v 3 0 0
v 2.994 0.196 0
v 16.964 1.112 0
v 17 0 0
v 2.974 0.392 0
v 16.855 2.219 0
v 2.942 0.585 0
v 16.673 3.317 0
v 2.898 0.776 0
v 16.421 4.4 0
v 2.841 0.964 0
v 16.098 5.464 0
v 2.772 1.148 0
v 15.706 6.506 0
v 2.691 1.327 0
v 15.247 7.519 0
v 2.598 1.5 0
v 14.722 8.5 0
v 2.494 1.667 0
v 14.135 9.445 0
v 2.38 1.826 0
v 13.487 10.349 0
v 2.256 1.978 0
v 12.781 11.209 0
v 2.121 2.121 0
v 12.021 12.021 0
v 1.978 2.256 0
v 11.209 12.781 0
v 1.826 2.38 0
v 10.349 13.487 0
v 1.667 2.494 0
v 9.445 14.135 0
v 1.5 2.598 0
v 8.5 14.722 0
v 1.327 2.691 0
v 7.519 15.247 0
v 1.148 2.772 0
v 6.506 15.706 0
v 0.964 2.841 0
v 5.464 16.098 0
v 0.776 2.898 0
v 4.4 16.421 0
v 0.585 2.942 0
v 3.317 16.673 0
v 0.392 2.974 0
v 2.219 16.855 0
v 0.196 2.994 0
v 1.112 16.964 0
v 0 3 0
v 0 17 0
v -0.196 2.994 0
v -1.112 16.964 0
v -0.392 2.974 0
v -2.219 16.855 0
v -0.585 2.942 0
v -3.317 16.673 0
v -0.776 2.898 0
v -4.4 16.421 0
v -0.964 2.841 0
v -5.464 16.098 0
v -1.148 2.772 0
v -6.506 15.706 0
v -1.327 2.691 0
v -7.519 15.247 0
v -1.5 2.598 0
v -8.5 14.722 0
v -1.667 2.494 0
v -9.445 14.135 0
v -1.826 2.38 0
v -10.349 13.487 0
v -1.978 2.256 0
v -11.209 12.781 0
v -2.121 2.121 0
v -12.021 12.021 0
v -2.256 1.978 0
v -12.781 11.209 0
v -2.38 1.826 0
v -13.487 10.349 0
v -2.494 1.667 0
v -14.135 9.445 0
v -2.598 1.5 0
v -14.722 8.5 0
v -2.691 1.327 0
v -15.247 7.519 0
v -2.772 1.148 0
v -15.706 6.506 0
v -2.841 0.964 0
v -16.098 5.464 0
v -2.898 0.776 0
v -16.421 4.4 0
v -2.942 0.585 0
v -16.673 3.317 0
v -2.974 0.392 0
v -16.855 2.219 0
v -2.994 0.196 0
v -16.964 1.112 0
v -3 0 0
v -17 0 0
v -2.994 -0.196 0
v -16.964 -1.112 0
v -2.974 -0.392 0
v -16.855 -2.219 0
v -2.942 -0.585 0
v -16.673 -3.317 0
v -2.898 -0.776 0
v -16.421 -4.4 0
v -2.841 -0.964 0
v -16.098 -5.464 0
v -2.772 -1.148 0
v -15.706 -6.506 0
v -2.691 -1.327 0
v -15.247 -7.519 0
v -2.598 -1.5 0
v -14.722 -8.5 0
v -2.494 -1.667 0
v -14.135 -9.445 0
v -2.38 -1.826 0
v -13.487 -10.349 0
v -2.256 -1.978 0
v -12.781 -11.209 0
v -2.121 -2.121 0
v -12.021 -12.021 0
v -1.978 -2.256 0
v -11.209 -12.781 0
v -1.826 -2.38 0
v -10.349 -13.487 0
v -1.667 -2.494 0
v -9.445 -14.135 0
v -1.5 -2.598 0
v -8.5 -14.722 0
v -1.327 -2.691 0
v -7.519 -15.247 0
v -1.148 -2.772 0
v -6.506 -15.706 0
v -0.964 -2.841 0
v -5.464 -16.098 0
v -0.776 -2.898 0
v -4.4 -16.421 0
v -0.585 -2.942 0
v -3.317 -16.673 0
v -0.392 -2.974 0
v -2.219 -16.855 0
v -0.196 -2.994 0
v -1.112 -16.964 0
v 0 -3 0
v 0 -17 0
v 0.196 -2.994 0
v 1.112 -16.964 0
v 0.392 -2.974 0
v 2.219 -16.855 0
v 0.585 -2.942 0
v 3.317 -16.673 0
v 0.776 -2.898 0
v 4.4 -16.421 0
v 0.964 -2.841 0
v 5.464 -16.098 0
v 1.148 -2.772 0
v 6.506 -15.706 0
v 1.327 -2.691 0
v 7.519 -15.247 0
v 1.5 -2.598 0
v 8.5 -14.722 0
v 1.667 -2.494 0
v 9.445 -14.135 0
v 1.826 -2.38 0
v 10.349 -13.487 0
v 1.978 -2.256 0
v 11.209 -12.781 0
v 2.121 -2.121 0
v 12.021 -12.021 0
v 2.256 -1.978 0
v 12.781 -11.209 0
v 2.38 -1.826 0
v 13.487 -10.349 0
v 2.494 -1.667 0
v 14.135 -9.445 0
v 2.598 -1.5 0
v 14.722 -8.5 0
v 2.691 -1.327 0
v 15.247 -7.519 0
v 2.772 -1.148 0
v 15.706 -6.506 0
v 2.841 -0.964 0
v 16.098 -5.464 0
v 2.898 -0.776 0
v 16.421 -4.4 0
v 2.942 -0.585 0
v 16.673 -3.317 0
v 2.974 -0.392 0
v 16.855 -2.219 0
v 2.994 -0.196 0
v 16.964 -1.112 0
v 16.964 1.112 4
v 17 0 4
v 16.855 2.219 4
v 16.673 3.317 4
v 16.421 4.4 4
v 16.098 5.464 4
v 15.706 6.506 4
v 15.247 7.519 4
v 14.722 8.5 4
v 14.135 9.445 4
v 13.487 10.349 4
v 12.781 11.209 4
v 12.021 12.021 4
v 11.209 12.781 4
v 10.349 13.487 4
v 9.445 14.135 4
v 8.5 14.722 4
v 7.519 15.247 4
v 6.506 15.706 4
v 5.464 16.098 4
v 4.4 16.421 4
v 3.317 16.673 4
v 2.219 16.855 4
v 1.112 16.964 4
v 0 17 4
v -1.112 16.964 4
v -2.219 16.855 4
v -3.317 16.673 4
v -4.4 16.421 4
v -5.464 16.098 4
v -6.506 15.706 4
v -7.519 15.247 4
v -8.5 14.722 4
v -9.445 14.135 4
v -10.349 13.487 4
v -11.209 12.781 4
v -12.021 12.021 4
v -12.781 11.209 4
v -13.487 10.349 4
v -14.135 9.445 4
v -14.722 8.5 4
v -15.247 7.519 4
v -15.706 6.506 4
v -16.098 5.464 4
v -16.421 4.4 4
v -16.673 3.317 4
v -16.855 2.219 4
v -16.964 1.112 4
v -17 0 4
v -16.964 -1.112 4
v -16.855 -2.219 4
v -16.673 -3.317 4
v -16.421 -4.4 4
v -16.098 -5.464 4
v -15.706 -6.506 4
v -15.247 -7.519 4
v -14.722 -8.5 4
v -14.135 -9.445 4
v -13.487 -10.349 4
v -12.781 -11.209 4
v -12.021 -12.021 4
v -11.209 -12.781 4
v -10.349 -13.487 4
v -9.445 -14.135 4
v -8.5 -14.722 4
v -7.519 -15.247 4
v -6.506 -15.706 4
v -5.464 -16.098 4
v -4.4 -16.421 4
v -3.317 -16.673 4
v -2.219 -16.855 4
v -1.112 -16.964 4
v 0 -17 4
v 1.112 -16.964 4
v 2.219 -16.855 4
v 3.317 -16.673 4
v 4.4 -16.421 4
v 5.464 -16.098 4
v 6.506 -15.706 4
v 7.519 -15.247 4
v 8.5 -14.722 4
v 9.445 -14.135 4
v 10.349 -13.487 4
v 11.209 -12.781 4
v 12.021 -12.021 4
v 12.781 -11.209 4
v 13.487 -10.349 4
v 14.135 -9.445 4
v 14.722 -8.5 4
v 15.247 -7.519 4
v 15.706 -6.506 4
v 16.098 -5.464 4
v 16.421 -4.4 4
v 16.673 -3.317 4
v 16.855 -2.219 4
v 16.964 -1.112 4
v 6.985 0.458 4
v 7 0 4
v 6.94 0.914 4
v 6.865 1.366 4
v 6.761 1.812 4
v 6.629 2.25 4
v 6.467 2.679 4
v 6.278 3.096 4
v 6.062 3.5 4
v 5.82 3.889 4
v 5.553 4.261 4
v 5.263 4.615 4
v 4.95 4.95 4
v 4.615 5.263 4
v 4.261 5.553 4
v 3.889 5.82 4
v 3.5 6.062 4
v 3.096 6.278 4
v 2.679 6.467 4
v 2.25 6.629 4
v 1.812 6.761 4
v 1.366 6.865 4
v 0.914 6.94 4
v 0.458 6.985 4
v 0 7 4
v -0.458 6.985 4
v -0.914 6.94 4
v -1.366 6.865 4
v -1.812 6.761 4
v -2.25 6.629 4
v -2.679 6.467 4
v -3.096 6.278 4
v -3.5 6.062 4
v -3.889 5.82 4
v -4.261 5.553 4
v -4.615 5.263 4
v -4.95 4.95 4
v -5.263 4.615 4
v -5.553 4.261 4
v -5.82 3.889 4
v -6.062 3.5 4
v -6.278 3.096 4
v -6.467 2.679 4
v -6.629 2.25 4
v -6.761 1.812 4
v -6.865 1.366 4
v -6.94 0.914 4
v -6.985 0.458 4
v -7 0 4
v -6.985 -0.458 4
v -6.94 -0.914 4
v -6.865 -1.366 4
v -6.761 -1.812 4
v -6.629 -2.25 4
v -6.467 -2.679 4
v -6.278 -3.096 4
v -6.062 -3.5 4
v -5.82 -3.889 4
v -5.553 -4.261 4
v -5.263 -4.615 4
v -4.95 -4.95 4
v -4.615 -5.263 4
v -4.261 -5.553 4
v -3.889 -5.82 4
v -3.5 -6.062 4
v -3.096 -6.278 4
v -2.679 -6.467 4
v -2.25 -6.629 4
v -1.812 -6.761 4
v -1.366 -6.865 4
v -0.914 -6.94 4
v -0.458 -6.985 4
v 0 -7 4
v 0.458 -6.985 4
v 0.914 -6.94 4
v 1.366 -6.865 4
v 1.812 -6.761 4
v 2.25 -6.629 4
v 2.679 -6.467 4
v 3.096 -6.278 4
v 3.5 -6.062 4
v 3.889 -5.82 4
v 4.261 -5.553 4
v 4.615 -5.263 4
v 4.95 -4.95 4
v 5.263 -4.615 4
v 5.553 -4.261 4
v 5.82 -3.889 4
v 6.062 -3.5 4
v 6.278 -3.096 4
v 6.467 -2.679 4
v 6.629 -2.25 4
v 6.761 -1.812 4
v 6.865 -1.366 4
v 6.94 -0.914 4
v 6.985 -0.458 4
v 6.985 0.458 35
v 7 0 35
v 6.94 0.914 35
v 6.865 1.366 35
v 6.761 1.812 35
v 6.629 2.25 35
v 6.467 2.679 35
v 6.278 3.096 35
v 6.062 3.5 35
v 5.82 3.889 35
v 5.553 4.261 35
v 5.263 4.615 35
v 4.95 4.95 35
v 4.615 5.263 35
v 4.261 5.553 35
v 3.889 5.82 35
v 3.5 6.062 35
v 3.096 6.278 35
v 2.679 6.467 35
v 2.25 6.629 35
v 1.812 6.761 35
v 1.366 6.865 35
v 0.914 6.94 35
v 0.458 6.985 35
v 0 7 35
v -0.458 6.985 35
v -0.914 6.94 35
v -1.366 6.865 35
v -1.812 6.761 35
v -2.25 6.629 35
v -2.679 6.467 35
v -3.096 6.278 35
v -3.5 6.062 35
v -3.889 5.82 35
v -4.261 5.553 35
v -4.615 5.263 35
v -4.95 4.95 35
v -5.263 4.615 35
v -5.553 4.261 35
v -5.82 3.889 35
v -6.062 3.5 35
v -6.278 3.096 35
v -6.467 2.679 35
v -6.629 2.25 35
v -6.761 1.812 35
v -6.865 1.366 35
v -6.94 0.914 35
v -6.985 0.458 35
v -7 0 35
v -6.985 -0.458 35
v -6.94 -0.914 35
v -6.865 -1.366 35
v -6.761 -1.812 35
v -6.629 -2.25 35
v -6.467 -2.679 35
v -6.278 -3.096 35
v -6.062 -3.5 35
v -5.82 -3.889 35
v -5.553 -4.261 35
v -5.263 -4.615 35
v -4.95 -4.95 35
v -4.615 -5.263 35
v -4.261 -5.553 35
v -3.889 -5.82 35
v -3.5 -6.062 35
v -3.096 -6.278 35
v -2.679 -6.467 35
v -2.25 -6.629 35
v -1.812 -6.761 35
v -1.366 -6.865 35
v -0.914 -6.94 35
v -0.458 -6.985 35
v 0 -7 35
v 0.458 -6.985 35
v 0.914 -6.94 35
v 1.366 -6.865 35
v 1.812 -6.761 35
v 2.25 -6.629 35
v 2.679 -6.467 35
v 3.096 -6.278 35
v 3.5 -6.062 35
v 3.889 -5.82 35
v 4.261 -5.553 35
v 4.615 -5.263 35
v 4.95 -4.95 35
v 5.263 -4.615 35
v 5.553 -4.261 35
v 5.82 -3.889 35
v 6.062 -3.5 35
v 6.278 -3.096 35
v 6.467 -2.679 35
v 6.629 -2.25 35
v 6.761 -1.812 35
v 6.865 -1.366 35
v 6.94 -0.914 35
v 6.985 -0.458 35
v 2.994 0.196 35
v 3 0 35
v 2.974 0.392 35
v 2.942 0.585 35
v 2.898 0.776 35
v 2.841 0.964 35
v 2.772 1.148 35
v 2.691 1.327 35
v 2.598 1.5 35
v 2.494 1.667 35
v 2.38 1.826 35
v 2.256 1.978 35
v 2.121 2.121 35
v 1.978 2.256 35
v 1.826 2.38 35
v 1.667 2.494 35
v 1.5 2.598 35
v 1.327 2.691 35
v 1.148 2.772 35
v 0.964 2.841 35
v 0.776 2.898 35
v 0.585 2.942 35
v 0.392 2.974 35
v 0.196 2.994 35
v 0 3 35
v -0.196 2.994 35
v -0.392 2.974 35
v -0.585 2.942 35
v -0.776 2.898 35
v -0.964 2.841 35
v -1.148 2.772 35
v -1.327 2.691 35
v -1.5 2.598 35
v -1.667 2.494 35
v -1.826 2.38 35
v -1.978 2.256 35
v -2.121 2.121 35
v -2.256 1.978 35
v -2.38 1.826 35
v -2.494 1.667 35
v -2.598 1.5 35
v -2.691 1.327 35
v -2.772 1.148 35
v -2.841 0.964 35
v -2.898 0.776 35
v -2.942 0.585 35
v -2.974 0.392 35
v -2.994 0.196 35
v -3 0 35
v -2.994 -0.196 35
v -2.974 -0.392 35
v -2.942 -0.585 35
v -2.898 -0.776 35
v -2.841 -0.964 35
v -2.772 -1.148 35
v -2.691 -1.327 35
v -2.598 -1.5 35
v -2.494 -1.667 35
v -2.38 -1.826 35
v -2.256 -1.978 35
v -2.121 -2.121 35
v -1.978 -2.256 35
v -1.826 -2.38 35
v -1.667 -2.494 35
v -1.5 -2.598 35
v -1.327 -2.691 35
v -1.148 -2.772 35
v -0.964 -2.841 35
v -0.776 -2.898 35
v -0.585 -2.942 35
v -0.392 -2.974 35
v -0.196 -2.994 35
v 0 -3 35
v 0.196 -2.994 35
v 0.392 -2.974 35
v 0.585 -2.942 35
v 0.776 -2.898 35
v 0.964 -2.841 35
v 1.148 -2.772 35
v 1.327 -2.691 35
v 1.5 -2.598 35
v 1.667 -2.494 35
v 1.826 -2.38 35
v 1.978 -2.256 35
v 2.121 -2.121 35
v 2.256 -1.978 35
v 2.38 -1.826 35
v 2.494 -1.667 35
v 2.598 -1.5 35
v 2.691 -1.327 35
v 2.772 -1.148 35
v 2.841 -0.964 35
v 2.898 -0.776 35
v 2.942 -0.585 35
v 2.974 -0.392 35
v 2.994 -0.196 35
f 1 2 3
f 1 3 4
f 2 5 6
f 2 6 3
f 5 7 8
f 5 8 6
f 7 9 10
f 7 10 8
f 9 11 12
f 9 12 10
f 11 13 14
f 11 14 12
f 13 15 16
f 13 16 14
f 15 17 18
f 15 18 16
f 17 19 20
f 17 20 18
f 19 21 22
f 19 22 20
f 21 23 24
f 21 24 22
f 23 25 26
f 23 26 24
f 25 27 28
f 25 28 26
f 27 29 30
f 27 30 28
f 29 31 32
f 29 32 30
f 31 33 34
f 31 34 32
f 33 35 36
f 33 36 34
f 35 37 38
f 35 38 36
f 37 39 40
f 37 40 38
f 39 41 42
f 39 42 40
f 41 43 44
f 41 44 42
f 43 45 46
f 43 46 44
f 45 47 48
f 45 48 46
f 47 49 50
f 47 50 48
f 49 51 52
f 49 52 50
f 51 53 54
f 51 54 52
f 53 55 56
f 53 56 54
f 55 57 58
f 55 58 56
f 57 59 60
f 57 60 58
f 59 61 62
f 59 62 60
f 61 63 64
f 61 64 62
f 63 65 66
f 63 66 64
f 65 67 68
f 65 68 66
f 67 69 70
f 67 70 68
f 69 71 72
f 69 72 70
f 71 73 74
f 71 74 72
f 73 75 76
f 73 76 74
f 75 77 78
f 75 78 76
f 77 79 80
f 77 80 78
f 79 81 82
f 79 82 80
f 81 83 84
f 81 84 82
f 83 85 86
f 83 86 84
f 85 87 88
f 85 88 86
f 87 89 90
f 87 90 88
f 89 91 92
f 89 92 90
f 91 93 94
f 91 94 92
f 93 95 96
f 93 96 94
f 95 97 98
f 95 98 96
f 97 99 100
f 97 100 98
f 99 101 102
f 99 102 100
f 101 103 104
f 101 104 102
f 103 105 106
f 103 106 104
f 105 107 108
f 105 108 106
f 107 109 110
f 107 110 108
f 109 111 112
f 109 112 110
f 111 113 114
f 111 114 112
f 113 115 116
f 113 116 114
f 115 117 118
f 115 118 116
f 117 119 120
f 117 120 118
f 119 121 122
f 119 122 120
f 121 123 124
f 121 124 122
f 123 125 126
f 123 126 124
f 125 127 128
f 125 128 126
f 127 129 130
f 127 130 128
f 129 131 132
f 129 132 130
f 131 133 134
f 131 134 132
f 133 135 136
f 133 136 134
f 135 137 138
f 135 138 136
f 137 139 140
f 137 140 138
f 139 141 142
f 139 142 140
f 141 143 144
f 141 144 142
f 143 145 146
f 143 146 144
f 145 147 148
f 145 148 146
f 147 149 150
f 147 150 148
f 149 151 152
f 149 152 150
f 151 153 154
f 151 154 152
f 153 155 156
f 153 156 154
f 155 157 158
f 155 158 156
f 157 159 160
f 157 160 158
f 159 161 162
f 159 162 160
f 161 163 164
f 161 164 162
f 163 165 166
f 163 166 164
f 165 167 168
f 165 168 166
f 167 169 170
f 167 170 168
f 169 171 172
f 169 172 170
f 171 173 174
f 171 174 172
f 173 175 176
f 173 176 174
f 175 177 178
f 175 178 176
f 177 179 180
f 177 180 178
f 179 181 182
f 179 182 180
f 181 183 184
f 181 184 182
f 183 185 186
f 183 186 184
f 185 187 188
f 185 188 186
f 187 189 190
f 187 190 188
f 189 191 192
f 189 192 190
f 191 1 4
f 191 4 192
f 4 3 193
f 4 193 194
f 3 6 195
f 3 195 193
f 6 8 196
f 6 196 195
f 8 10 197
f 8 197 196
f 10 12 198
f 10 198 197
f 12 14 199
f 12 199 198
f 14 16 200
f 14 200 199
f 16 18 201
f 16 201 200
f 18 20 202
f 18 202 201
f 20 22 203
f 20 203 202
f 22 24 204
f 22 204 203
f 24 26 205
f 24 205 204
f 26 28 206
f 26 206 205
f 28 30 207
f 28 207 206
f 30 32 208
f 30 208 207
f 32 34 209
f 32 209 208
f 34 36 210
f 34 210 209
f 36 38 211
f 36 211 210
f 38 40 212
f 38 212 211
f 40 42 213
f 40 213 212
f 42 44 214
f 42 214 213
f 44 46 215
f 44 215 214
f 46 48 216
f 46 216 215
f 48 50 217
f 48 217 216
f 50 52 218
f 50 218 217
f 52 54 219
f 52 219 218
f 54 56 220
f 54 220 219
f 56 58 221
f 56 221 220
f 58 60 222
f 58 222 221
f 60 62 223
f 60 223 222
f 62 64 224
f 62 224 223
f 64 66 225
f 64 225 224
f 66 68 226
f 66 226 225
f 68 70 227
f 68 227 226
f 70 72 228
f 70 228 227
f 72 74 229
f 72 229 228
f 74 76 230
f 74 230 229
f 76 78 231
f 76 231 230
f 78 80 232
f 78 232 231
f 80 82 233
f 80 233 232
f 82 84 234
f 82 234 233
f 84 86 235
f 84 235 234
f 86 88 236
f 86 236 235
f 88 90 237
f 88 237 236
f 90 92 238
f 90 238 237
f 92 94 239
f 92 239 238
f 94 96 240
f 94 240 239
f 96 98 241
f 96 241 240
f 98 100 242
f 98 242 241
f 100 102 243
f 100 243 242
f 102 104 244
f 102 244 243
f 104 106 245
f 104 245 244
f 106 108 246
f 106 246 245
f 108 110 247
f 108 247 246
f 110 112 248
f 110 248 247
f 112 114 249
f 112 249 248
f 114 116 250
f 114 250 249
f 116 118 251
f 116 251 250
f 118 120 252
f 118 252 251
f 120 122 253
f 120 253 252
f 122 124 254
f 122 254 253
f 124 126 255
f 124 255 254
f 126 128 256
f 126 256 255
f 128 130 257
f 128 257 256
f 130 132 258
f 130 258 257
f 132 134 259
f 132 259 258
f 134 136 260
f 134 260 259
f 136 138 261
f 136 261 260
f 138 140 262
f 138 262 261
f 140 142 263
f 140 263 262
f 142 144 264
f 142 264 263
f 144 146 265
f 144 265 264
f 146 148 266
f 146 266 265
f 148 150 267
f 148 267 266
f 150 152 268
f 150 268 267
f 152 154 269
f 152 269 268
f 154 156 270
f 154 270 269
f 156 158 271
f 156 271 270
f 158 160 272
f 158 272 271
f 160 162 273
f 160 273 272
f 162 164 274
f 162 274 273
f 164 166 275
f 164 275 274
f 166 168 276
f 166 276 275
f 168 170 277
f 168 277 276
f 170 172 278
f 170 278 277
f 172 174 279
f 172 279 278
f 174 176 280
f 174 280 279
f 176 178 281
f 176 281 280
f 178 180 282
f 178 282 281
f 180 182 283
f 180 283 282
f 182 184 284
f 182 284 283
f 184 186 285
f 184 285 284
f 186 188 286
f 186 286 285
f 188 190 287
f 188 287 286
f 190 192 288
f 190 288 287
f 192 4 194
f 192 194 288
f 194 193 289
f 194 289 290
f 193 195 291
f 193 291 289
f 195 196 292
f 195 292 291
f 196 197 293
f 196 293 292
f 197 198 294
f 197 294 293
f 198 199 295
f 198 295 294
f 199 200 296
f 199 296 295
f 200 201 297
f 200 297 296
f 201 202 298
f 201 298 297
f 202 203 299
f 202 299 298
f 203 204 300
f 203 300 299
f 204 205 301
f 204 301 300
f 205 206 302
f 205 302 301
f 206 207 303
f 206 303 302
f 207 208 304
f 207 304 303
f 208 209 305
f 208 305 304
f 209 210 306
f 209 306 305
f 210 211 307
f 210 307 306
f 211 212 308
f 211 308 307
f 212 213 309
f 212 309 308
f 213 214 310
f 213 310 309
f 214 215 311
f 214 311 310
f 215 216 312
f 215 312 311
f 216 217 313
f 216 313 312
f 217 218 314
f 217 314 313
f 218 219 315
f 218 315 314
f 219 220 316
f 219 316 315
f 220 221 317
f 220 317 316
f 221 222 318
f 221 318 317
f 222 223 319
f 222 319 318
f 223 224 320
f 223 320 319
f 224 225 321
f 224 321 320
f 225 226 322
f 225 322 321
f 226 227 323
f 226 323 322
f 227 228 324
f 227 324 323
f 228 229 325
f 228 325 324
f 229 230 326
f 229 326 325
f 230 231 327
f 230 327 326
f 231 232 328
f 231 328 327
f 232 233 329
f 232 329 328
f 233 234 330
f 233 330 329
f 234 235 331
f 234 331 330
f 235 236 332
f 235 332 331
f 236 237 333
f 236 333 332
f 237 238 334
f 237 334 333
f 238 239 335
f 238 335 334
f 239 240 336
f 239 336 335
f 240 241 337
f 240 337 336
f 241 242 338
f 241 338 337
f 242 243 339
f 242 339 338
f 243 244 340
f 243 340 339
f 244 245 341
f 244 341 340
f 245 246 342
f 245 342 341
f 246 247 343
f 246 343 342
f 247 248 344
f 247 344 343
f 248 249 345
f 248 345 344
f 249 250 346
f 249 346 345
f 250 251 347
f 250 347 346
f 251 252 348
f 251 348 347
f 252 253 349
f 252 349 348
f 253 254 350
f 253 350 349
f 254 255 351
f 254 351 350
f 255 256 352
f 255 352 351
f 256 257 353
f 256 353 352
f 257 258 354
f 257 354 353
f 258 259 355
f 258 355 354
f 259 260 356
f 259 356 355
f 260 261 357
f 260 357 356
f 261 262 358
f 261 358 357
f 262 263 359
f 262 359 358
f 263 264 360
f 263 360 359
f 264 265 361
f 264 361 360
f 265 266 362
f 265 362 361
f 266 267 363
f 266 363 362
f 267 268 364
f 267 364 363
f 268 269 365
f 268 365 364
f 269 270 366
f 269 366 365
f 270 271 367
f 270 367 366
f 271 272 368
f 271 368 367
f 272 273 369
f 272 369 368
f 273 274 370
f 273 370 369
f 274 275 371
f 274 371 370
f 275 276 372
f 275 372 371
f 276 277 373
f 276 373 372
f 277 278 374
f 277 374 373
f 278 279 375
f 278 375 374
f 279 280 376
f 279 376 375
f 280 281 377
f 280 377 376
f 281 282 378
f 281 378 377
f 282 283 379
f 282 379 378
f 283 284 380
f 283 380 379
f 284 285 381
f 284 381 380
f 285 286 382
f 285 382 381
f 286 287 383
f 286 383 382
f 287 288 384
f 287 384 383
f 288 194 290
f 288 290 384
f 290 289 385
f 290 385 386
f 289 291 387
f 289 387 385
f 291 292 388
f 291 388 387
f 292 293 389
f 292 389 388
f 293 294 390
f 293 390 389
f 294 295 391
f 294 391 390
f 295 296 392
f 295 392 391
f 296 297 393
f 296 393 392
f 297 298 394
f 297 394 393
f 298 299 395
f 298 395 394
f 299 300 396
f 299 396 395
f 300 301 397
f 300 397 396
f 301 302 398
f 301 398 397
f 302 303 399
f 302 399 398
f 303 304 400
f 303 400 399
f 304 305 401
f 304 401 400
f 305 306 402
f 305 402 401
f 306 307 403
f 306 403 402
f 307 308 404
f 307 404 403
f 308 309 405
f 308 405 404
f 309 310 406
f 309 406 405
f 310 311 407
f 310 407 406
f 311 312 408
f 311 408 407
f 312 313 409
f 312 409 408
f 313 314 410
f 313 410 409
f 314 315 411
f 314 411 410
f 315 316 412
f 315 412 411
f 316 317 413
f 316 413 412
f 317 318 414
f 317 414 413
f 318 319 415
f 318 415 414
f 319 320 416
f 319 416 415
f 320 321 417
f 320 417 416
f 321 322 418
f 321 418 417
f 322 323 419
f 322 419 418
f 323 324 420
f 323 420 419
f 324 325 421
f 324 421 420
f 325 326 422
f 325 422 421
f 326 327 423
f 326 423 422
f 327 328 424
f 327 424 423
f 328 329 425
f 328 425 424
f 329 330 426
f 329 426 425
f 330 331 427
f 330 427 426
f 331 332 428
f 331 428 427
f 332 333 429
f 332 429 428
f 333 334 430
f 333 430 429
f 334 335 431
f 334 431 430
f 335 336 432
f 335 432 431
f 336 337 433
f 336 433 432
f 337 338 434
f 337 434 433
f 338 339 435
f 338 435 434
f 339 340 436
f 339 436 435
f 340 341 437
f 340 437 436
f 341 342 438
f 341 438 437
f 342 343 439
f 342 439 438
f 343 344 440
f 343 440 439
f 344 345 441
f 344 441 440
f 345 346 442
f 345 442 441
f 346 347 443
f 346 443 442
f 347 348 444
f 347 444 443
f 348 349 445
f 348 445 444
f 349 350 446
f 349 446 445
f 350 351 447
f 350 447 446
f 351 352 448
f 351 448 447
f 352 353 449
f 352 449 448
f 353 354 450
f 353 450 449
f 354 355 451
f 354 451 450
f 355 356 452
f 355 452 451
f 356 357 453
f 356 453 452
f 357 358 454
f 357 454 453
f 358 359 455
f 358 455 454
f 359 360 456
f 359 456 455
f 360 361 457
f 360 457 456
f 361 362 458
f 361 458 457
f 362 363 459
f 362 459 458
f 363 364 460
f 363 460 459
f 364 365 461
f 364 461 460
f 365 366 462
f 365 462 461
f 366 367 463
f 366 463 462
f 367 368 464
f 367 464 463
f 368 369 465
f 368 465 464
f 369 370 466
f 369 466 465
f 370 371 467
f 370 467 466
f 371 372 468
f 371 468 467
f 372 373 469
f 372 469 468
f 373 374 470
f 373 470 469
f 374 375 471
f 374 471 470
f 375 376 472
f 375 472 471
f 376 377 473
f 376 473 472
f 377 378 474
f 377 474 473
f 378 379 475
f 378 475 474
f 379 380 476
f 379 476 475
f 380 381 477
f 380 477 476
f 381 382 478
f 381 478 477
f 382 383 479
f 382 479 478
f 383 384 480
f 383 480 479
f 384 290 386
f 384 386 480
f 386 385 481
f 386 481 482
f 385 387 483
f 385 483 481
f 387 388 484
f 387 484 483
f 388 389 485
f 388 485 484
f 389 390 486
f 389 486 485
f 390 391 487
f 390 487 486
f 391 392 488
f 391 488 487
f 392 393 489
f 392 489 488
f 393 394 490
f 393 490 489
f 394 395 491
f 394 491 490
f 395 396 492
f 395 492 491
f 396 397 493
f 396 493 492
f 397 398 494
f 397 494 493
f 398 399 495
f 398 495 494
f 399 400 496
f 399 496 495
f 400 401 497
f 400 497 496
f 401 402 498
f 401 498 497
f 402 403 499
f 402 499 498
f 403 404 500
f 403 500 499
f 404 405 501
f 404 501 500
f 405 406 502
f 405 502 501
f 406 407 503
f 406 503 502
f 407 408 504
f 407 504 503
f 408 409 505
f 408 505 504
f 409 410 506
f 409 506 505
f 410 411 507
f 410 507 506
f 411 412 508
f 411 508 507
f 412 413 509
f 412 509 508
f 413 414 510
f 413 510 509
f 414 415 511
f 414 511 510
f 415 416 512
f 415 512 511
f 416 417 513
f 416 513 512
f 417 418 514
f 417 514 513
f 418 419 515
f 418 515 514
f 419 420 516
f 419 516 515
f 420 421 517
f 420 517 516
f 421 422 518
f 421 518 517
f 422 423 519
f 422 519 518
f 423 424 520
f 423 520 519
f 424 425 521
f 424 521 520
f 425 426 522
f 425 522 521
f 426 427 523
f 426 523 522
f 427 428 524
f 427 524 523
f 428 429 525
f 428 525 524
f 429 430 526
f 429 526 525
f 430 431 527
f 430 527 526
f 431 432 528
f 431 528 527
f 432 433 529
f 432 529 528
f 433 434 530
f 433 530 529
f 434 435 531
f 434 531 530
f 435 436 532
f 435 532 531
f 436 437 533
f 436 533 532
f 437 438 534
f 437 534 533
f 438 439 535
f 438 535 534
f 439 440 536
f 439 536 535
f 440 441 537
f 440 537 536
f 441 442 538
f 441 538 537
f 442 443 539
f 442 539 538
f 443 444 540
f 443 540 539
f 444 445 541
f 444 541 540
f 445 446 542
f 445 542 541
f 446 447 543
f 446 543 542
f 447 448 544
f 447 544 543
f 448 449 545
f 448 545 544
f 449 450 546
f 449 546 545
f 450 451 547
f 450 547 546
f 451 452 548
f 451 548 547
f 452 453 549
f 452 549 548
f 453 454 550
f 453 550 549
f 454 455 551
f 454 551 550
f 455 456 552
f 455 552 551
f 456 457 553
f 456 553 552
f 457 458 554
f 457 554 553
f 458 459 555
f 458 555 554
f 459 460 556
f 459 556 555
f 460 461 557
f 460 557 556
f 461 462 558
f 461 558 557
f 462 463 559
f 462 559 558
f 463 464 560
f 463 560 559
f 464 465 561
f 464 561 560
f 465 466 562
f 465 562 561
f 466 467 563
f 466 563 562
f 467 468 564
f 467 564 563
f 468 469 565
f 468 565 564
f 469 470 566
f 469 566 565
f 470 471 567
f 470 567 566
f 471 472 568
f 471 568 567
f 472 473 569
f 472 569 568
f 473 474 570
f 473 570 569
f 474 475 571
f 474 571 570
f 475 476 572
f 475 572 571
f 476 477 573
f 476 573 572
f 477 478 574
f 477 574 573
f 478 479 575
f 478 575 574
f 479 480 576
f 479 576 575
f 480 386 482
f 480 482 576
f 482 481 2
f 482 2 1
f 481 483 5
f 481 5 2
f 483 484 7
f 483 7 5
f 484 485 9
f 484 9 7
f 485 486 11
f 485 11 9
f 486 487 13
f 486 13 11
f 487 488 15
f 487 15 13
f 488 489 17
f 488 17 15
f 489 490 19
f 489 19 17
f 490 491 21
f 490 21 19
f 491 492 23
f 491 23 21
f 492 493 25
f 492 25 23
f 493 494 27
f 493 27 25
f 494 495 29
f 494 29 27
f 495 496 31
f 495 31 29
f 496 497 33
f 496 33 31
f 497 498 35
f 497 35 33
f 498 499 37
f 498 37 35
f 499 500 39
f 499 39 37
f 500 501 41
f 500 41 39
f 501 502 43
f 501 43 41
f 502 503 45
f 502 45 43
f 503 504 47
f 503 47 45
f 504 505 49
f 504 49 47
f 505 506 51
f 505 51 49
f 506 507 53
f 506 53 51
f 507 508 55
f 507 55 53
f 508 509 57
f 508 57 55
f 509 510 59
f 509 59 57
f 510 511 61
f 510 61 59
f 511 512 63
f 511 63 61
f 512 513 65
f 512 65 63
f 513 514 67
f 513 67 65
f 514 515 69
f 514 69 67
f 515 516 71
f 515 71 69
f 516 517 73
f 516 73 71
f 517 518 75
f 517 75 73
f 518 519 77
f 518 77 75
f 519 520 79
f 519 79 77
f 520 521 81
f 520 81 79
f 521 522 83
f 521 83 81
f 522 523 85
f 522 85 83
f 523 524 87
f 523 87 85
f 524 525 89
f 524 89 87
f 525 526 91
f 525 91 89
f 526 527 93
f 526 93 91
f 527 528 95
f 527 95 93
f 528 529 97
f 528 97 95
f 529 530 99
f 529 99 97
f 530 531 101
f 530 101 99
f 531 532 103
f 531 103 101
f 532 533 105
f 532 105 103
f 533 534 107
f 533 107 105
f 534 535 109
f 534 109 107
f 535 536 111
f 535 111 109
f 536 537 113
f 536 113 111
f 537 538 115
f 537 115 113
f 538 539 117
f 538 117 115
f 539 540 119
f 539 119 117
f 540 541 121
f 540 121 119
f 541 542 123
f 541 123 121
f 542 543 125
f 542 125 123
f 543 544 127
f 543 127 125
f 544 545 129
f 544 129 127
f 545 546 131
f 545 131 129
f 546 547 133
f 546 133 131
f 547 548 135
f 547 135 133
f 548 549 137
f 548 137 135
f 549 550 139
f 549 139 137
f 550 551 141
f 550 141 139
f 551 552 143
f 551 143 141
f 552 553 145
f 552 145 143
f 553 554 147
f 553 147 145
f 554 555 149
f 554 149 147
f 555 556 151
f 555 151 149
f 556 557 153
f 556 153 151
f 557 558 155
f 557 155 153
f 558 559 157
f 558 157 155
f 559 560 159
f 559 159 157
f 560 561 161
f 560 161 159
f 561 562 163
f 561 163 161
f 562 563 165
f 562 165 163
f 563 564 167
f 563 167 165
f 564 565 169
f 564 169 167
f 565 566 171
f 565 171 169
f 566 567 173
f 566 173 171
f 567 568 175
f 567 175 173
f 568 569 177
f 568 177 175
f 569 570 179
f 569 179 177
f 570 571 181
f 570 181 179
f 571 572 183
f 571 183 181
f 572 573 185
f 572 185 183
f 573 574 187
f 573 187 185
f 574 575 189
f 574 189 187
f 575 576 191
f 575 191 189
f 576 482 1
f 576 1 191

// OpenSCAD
// Original MechIntel educational model. CC0-1.0. Units: mm.
// Not a standardized or load-rated component.
$fn=96;
// Section points: [radius, height], mm. Edit to change the profile.
section=[[3, 0], [17, 0], [17, 4], [7, 4], [7, 35], [3, 35]];
rotate_extrude($fn=96) polygon(points=section);
